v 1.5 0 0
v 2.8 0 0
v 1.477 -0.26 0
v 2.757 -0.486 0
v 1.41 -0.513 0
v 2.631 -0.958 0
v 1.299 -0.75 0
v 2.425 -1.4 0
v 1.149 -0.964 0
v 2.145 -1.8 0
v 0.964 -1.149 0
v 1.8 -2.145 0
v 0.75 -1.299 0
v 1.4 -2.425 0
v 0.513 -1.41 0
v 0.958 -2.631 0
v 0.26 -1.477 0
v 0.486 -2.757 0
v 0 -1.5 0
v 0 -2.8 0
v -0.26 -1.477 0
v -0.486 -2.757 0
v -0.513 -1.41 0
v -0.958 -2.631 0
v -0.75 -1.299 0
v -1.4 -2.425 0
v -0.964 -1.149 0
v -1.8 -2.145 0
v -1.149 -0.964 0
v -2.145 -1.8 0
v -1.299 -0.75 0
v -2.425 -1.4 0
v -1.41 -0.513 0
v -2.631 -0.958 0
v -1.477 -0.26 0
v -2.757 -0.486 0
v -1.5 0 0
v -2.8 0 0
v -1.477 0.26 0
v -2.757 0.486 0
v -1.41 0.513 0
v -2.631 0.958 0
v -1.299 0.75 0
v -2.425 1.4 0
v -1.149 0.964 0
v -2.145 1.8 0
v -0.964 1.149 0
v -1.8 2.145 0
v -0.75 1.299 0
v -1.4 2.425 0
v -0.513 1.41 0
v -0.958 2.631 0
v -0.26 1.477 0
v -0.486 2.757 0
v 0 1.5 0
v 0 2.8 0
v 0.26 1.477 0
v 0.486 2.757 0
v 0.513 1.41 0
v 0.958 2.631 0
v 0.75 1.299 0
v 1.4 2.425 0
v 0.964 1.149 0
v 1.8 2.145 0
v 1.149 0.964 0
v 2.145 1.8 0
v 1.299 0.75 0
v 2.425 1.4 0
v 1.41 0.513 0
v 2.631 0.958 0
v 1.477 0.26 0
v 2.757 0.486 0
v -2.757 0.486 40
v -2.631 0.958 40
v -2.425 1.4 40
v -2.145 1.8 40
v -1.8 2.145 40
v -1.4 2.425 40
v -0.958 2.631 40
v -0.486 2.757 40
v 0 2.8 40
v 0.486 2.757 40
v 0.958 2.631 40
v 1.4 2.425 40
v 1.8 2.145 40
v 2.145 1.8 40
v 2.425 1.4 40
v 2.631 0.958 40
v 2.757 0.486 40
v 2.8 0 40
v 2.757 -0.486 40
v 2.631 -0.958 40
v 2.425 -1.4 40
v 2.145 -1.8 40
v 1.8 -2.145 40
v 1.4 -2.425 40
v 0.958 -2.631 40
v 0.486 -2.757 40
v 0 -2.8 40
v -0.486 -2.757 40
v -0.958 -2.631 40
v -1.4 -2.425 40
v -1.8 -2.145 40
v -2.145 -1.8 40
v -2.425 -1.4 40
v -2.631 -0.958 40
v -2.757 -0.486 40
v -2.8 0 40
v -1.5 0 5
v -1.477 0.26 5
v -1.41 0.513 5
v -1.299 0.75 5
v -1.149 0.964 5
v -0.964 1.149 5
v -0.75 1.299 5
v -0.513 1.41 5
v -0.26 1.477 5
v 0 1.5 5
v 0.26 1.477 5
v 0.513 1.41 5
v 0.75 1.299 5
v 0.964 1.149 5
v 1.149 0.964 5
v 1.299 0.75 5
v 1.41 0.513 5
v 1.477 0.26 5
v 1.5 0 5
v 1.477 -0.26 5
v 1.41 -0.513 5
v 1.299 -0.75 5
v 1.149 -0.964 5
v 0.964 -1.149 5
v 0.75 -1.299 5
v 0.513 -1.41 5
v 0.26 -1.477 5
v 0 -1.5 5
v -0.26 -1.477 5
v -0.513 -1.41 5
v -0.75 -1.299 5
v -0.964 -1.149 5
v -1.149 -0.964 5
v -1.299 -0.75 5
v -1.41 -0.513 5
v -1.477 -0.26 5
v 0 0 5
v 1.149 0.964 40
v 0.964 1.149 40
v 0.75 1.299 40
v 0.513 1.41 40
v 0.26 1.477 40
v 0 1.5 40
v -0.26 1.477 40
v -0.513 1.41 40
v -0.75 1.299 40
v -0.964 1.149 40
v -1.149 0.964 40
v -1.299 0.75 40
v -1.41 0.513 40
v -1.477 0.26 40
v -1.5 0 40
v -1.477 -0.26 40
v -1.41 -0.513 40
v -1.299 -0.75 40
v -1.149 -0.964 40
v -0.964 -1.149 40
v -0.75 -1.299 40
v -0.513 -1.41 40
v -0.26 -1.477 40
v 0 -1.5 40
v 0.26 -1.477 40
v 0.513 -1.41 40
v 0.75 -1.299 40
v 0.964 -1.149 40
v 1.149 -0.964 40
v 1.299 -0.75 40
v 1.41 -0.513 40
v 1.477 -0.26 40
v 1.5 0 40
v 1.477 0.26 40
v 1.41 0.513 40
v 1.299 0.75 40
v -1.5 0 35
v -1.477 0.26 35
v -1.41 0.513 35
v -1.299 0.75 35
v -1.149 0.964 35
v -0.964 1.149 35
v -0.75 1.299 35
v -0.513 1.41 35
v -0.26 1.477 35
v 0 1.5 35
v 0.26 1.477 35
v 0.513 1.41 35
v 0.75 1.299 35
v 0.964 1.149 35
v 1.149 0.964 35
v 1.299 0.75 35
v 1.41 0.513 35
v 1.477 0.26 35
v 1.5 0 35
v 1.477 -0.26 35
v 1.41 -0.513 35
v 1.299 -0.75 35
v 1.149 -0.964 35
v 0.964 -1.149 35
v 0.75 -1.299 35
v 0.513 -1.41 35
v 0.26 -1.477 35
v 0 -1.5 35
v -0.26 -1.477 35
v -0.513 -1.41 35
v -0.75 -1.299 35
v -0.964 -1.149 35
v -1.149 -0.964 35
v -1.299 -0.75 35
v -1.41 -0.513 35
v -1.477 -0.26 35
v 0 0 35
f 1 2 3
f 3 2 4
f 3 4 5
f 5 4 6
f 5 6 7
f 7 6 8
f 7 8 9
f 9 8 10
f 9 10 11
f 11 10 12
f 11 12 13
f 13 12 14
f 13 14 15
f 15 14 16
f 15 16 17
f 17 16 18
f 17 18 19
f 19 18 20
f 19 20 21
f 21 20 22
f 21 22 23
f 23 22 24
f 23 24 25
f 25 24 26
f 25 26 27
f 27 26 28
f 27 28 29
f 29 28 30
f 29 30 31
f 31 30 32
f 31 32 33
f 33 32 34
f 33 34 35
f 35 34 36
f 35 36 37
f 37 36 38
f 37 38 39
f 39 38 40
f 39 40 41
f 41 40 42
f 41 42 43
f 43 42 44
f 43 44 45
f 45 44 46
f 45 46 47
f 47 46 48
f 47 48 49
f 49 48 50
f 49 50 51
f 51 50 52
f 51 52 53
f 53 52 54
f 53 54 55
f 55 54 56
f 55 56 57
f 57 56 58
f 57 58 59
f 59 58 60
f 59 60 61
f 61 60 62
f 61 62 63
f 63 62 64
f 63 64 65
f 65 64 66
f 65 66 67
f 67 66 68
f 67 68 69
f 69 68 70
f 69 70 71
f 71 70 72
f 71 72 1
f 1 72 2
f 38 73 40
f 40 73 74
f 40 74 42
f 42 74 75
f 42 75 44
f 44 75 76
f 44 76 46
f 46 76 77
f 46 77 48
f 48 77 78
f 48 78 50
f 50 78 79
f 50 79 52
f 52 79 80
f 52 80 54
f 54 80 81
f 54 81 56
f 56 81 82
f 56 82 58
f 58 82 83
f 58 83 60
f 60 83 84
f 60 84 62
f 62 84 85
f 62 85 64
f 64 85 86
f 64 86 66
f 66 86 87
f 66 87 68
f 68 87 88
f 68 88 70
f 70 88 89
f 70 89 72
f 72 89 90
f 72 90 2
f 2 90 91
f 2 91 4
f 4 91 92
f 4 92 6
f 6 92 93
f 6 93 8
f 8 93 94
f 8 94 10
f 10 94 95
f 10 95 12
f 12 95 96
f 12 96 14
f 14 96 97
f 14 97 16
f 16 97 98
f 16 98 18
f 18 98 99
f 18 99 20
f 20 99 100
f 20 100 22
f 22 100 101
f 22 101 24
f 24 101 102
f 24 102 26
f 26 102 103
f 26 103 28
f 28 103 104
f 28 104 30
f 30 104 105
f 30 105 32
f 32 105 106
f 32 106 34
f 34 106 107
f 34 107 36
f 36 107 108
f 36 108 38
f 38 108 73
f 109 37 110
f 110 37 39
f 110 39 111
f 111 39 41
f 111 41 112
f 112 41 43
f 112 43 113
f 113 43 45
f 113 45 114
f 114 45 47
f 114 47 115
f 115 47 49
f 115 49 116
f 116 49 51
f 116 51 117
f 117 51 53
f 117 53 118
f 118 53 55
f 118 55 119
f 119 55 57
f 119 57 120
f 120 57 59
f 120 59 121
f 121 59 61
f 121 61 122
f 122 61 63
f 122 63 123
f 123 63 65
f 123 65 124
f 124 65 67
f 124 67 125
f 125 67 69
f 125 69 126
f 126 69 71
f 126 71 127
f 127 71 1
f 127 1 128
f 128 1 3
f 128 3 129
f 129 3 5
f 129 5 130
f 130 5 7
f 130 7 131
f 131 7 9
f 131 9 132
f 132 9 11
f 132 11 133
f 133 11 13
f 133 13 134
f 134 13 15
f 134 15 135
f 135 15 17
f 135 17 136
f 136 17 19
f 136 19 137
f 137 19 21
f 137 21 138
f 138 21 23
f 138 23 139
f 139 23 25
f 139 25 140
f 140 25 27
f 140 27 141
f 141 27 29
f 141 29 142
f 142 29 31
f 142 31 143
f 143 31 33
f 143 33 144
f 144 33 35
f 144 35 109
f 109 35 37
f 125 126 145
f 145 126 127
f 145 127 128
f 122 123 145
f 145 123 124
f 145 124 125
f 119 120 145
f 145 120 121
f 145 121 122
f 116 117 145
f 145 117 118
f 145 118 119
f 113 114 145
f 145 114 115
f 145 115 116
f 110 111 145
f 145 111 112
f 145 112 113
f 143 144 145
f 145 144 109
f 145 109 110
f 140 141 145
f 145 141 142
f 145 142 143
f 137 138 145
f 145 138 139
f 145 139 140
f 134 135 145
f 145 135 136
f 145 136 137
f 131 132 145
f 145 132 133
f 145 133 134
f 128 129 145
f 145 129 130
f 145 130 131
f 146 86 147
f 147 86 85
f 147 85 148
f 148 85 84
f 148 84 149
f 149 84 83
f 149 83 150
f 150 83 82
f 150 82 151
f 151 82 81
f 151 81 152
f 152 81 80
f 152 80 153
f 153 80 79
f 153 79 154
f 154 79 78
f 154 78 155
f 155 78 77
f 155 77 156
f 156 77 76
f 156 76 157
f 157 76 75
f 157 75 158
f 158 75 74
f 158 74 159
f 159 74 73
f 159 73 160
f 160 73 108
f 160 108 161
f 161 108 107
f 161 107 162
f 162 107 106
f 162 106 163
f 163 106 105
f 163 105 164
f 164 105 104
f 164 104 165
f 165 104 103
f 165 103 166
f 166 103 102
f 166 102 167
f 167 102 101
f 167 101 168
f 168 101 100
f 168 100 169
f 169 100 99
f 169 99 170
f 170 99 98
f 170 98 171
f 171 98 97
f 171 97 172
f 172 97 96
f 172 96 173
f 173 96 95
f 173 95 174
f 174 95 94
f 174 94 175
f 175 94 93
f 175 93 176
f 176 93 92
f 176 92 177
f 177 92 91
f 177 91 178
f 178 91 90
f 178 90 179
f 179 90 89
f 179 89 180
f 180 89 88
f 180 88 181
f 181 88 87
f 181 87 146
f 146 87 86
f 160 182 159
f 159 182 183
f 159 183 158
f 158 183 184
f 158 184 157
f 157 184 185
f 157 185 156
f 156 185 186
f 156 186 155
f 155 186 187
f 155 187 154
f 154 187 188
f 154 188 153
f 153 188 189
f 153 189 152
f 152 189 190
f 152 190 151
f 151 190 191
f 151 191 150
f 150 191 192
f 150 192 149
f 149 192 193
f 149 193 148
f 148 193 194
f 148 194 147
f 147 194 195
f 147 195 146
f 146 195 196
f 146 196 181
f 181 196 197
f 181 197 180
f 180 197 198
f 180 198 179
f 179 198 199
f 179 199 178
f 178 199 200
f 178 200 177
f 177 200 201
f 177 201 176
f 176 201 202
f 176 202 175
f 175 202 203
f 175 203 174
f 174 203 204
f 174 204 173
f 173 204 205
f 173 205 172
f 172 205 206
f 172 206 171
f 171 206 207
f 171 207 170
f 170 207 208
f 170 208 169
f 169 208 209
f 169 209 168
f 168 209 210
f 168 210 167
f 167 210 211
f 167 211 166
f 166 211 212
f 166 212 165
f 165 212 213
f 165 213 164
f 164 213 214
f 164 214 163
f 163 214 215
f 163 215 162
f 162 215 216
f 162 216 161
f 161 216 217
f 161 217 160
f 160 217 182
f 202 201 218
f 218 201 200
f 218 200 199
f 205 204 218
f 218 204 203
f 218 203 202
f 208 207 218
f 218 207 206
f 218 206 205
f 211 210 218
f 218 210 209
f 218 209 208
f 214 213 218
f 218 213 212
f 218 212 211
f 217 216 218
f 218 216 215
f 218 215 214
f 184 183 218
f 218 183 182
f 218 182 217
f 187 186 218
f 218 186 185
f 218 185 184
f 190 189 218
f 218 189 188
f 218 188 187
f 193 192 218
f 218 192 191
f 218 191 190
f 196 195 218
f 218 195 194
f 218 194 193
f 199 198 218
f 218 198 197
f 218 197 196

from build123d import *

# Parameters (mm, degrees)
SKETCH1_R           = 2.8
SKETCH1_R_2         = 1.5
BOSS_EXTRUDE1_DEPTH = 5
SKETCH2_R           = 2.8
BOSS_EXTRUDE2_DEPTH = 30
SKETCH3_R           = 2.8
SKETCH3_R_2         = 1.5
BOSS_EXTRUDE3_DEPTH = 5


with BuildPart() as part:
    # Sketch1 → Boss-Extrude1 (new body)
    with BuildSketch(Plane.XY):
        Circle(SKETCH1_R)
        Circle(SKETCH1_R_2, mode=Mode.SUBTRACT)
    extrude(amount=BOSS_EXTRUDE1_DEPTH)

    # Sketch2 → Boss-Extrude2 (add)
    with BuildSketch(Plane.XY.offset(5)):
        Circle(SKETCH2_R)
    extrude(amount=BOSS_EXTRUDE2_DEPTH)

    # Sketch3 → Boss-Extrude3 (add)
    with BuildSketch(Plane.XY.offset(35)):
        Circle(SKETCH3_R)
        Circle(SKETCH3_R_2, mode=Mode.SUBTRACT)
    extrude(amount=BOSS_EXTRUDE3_DEPTH)


solid = part.part
